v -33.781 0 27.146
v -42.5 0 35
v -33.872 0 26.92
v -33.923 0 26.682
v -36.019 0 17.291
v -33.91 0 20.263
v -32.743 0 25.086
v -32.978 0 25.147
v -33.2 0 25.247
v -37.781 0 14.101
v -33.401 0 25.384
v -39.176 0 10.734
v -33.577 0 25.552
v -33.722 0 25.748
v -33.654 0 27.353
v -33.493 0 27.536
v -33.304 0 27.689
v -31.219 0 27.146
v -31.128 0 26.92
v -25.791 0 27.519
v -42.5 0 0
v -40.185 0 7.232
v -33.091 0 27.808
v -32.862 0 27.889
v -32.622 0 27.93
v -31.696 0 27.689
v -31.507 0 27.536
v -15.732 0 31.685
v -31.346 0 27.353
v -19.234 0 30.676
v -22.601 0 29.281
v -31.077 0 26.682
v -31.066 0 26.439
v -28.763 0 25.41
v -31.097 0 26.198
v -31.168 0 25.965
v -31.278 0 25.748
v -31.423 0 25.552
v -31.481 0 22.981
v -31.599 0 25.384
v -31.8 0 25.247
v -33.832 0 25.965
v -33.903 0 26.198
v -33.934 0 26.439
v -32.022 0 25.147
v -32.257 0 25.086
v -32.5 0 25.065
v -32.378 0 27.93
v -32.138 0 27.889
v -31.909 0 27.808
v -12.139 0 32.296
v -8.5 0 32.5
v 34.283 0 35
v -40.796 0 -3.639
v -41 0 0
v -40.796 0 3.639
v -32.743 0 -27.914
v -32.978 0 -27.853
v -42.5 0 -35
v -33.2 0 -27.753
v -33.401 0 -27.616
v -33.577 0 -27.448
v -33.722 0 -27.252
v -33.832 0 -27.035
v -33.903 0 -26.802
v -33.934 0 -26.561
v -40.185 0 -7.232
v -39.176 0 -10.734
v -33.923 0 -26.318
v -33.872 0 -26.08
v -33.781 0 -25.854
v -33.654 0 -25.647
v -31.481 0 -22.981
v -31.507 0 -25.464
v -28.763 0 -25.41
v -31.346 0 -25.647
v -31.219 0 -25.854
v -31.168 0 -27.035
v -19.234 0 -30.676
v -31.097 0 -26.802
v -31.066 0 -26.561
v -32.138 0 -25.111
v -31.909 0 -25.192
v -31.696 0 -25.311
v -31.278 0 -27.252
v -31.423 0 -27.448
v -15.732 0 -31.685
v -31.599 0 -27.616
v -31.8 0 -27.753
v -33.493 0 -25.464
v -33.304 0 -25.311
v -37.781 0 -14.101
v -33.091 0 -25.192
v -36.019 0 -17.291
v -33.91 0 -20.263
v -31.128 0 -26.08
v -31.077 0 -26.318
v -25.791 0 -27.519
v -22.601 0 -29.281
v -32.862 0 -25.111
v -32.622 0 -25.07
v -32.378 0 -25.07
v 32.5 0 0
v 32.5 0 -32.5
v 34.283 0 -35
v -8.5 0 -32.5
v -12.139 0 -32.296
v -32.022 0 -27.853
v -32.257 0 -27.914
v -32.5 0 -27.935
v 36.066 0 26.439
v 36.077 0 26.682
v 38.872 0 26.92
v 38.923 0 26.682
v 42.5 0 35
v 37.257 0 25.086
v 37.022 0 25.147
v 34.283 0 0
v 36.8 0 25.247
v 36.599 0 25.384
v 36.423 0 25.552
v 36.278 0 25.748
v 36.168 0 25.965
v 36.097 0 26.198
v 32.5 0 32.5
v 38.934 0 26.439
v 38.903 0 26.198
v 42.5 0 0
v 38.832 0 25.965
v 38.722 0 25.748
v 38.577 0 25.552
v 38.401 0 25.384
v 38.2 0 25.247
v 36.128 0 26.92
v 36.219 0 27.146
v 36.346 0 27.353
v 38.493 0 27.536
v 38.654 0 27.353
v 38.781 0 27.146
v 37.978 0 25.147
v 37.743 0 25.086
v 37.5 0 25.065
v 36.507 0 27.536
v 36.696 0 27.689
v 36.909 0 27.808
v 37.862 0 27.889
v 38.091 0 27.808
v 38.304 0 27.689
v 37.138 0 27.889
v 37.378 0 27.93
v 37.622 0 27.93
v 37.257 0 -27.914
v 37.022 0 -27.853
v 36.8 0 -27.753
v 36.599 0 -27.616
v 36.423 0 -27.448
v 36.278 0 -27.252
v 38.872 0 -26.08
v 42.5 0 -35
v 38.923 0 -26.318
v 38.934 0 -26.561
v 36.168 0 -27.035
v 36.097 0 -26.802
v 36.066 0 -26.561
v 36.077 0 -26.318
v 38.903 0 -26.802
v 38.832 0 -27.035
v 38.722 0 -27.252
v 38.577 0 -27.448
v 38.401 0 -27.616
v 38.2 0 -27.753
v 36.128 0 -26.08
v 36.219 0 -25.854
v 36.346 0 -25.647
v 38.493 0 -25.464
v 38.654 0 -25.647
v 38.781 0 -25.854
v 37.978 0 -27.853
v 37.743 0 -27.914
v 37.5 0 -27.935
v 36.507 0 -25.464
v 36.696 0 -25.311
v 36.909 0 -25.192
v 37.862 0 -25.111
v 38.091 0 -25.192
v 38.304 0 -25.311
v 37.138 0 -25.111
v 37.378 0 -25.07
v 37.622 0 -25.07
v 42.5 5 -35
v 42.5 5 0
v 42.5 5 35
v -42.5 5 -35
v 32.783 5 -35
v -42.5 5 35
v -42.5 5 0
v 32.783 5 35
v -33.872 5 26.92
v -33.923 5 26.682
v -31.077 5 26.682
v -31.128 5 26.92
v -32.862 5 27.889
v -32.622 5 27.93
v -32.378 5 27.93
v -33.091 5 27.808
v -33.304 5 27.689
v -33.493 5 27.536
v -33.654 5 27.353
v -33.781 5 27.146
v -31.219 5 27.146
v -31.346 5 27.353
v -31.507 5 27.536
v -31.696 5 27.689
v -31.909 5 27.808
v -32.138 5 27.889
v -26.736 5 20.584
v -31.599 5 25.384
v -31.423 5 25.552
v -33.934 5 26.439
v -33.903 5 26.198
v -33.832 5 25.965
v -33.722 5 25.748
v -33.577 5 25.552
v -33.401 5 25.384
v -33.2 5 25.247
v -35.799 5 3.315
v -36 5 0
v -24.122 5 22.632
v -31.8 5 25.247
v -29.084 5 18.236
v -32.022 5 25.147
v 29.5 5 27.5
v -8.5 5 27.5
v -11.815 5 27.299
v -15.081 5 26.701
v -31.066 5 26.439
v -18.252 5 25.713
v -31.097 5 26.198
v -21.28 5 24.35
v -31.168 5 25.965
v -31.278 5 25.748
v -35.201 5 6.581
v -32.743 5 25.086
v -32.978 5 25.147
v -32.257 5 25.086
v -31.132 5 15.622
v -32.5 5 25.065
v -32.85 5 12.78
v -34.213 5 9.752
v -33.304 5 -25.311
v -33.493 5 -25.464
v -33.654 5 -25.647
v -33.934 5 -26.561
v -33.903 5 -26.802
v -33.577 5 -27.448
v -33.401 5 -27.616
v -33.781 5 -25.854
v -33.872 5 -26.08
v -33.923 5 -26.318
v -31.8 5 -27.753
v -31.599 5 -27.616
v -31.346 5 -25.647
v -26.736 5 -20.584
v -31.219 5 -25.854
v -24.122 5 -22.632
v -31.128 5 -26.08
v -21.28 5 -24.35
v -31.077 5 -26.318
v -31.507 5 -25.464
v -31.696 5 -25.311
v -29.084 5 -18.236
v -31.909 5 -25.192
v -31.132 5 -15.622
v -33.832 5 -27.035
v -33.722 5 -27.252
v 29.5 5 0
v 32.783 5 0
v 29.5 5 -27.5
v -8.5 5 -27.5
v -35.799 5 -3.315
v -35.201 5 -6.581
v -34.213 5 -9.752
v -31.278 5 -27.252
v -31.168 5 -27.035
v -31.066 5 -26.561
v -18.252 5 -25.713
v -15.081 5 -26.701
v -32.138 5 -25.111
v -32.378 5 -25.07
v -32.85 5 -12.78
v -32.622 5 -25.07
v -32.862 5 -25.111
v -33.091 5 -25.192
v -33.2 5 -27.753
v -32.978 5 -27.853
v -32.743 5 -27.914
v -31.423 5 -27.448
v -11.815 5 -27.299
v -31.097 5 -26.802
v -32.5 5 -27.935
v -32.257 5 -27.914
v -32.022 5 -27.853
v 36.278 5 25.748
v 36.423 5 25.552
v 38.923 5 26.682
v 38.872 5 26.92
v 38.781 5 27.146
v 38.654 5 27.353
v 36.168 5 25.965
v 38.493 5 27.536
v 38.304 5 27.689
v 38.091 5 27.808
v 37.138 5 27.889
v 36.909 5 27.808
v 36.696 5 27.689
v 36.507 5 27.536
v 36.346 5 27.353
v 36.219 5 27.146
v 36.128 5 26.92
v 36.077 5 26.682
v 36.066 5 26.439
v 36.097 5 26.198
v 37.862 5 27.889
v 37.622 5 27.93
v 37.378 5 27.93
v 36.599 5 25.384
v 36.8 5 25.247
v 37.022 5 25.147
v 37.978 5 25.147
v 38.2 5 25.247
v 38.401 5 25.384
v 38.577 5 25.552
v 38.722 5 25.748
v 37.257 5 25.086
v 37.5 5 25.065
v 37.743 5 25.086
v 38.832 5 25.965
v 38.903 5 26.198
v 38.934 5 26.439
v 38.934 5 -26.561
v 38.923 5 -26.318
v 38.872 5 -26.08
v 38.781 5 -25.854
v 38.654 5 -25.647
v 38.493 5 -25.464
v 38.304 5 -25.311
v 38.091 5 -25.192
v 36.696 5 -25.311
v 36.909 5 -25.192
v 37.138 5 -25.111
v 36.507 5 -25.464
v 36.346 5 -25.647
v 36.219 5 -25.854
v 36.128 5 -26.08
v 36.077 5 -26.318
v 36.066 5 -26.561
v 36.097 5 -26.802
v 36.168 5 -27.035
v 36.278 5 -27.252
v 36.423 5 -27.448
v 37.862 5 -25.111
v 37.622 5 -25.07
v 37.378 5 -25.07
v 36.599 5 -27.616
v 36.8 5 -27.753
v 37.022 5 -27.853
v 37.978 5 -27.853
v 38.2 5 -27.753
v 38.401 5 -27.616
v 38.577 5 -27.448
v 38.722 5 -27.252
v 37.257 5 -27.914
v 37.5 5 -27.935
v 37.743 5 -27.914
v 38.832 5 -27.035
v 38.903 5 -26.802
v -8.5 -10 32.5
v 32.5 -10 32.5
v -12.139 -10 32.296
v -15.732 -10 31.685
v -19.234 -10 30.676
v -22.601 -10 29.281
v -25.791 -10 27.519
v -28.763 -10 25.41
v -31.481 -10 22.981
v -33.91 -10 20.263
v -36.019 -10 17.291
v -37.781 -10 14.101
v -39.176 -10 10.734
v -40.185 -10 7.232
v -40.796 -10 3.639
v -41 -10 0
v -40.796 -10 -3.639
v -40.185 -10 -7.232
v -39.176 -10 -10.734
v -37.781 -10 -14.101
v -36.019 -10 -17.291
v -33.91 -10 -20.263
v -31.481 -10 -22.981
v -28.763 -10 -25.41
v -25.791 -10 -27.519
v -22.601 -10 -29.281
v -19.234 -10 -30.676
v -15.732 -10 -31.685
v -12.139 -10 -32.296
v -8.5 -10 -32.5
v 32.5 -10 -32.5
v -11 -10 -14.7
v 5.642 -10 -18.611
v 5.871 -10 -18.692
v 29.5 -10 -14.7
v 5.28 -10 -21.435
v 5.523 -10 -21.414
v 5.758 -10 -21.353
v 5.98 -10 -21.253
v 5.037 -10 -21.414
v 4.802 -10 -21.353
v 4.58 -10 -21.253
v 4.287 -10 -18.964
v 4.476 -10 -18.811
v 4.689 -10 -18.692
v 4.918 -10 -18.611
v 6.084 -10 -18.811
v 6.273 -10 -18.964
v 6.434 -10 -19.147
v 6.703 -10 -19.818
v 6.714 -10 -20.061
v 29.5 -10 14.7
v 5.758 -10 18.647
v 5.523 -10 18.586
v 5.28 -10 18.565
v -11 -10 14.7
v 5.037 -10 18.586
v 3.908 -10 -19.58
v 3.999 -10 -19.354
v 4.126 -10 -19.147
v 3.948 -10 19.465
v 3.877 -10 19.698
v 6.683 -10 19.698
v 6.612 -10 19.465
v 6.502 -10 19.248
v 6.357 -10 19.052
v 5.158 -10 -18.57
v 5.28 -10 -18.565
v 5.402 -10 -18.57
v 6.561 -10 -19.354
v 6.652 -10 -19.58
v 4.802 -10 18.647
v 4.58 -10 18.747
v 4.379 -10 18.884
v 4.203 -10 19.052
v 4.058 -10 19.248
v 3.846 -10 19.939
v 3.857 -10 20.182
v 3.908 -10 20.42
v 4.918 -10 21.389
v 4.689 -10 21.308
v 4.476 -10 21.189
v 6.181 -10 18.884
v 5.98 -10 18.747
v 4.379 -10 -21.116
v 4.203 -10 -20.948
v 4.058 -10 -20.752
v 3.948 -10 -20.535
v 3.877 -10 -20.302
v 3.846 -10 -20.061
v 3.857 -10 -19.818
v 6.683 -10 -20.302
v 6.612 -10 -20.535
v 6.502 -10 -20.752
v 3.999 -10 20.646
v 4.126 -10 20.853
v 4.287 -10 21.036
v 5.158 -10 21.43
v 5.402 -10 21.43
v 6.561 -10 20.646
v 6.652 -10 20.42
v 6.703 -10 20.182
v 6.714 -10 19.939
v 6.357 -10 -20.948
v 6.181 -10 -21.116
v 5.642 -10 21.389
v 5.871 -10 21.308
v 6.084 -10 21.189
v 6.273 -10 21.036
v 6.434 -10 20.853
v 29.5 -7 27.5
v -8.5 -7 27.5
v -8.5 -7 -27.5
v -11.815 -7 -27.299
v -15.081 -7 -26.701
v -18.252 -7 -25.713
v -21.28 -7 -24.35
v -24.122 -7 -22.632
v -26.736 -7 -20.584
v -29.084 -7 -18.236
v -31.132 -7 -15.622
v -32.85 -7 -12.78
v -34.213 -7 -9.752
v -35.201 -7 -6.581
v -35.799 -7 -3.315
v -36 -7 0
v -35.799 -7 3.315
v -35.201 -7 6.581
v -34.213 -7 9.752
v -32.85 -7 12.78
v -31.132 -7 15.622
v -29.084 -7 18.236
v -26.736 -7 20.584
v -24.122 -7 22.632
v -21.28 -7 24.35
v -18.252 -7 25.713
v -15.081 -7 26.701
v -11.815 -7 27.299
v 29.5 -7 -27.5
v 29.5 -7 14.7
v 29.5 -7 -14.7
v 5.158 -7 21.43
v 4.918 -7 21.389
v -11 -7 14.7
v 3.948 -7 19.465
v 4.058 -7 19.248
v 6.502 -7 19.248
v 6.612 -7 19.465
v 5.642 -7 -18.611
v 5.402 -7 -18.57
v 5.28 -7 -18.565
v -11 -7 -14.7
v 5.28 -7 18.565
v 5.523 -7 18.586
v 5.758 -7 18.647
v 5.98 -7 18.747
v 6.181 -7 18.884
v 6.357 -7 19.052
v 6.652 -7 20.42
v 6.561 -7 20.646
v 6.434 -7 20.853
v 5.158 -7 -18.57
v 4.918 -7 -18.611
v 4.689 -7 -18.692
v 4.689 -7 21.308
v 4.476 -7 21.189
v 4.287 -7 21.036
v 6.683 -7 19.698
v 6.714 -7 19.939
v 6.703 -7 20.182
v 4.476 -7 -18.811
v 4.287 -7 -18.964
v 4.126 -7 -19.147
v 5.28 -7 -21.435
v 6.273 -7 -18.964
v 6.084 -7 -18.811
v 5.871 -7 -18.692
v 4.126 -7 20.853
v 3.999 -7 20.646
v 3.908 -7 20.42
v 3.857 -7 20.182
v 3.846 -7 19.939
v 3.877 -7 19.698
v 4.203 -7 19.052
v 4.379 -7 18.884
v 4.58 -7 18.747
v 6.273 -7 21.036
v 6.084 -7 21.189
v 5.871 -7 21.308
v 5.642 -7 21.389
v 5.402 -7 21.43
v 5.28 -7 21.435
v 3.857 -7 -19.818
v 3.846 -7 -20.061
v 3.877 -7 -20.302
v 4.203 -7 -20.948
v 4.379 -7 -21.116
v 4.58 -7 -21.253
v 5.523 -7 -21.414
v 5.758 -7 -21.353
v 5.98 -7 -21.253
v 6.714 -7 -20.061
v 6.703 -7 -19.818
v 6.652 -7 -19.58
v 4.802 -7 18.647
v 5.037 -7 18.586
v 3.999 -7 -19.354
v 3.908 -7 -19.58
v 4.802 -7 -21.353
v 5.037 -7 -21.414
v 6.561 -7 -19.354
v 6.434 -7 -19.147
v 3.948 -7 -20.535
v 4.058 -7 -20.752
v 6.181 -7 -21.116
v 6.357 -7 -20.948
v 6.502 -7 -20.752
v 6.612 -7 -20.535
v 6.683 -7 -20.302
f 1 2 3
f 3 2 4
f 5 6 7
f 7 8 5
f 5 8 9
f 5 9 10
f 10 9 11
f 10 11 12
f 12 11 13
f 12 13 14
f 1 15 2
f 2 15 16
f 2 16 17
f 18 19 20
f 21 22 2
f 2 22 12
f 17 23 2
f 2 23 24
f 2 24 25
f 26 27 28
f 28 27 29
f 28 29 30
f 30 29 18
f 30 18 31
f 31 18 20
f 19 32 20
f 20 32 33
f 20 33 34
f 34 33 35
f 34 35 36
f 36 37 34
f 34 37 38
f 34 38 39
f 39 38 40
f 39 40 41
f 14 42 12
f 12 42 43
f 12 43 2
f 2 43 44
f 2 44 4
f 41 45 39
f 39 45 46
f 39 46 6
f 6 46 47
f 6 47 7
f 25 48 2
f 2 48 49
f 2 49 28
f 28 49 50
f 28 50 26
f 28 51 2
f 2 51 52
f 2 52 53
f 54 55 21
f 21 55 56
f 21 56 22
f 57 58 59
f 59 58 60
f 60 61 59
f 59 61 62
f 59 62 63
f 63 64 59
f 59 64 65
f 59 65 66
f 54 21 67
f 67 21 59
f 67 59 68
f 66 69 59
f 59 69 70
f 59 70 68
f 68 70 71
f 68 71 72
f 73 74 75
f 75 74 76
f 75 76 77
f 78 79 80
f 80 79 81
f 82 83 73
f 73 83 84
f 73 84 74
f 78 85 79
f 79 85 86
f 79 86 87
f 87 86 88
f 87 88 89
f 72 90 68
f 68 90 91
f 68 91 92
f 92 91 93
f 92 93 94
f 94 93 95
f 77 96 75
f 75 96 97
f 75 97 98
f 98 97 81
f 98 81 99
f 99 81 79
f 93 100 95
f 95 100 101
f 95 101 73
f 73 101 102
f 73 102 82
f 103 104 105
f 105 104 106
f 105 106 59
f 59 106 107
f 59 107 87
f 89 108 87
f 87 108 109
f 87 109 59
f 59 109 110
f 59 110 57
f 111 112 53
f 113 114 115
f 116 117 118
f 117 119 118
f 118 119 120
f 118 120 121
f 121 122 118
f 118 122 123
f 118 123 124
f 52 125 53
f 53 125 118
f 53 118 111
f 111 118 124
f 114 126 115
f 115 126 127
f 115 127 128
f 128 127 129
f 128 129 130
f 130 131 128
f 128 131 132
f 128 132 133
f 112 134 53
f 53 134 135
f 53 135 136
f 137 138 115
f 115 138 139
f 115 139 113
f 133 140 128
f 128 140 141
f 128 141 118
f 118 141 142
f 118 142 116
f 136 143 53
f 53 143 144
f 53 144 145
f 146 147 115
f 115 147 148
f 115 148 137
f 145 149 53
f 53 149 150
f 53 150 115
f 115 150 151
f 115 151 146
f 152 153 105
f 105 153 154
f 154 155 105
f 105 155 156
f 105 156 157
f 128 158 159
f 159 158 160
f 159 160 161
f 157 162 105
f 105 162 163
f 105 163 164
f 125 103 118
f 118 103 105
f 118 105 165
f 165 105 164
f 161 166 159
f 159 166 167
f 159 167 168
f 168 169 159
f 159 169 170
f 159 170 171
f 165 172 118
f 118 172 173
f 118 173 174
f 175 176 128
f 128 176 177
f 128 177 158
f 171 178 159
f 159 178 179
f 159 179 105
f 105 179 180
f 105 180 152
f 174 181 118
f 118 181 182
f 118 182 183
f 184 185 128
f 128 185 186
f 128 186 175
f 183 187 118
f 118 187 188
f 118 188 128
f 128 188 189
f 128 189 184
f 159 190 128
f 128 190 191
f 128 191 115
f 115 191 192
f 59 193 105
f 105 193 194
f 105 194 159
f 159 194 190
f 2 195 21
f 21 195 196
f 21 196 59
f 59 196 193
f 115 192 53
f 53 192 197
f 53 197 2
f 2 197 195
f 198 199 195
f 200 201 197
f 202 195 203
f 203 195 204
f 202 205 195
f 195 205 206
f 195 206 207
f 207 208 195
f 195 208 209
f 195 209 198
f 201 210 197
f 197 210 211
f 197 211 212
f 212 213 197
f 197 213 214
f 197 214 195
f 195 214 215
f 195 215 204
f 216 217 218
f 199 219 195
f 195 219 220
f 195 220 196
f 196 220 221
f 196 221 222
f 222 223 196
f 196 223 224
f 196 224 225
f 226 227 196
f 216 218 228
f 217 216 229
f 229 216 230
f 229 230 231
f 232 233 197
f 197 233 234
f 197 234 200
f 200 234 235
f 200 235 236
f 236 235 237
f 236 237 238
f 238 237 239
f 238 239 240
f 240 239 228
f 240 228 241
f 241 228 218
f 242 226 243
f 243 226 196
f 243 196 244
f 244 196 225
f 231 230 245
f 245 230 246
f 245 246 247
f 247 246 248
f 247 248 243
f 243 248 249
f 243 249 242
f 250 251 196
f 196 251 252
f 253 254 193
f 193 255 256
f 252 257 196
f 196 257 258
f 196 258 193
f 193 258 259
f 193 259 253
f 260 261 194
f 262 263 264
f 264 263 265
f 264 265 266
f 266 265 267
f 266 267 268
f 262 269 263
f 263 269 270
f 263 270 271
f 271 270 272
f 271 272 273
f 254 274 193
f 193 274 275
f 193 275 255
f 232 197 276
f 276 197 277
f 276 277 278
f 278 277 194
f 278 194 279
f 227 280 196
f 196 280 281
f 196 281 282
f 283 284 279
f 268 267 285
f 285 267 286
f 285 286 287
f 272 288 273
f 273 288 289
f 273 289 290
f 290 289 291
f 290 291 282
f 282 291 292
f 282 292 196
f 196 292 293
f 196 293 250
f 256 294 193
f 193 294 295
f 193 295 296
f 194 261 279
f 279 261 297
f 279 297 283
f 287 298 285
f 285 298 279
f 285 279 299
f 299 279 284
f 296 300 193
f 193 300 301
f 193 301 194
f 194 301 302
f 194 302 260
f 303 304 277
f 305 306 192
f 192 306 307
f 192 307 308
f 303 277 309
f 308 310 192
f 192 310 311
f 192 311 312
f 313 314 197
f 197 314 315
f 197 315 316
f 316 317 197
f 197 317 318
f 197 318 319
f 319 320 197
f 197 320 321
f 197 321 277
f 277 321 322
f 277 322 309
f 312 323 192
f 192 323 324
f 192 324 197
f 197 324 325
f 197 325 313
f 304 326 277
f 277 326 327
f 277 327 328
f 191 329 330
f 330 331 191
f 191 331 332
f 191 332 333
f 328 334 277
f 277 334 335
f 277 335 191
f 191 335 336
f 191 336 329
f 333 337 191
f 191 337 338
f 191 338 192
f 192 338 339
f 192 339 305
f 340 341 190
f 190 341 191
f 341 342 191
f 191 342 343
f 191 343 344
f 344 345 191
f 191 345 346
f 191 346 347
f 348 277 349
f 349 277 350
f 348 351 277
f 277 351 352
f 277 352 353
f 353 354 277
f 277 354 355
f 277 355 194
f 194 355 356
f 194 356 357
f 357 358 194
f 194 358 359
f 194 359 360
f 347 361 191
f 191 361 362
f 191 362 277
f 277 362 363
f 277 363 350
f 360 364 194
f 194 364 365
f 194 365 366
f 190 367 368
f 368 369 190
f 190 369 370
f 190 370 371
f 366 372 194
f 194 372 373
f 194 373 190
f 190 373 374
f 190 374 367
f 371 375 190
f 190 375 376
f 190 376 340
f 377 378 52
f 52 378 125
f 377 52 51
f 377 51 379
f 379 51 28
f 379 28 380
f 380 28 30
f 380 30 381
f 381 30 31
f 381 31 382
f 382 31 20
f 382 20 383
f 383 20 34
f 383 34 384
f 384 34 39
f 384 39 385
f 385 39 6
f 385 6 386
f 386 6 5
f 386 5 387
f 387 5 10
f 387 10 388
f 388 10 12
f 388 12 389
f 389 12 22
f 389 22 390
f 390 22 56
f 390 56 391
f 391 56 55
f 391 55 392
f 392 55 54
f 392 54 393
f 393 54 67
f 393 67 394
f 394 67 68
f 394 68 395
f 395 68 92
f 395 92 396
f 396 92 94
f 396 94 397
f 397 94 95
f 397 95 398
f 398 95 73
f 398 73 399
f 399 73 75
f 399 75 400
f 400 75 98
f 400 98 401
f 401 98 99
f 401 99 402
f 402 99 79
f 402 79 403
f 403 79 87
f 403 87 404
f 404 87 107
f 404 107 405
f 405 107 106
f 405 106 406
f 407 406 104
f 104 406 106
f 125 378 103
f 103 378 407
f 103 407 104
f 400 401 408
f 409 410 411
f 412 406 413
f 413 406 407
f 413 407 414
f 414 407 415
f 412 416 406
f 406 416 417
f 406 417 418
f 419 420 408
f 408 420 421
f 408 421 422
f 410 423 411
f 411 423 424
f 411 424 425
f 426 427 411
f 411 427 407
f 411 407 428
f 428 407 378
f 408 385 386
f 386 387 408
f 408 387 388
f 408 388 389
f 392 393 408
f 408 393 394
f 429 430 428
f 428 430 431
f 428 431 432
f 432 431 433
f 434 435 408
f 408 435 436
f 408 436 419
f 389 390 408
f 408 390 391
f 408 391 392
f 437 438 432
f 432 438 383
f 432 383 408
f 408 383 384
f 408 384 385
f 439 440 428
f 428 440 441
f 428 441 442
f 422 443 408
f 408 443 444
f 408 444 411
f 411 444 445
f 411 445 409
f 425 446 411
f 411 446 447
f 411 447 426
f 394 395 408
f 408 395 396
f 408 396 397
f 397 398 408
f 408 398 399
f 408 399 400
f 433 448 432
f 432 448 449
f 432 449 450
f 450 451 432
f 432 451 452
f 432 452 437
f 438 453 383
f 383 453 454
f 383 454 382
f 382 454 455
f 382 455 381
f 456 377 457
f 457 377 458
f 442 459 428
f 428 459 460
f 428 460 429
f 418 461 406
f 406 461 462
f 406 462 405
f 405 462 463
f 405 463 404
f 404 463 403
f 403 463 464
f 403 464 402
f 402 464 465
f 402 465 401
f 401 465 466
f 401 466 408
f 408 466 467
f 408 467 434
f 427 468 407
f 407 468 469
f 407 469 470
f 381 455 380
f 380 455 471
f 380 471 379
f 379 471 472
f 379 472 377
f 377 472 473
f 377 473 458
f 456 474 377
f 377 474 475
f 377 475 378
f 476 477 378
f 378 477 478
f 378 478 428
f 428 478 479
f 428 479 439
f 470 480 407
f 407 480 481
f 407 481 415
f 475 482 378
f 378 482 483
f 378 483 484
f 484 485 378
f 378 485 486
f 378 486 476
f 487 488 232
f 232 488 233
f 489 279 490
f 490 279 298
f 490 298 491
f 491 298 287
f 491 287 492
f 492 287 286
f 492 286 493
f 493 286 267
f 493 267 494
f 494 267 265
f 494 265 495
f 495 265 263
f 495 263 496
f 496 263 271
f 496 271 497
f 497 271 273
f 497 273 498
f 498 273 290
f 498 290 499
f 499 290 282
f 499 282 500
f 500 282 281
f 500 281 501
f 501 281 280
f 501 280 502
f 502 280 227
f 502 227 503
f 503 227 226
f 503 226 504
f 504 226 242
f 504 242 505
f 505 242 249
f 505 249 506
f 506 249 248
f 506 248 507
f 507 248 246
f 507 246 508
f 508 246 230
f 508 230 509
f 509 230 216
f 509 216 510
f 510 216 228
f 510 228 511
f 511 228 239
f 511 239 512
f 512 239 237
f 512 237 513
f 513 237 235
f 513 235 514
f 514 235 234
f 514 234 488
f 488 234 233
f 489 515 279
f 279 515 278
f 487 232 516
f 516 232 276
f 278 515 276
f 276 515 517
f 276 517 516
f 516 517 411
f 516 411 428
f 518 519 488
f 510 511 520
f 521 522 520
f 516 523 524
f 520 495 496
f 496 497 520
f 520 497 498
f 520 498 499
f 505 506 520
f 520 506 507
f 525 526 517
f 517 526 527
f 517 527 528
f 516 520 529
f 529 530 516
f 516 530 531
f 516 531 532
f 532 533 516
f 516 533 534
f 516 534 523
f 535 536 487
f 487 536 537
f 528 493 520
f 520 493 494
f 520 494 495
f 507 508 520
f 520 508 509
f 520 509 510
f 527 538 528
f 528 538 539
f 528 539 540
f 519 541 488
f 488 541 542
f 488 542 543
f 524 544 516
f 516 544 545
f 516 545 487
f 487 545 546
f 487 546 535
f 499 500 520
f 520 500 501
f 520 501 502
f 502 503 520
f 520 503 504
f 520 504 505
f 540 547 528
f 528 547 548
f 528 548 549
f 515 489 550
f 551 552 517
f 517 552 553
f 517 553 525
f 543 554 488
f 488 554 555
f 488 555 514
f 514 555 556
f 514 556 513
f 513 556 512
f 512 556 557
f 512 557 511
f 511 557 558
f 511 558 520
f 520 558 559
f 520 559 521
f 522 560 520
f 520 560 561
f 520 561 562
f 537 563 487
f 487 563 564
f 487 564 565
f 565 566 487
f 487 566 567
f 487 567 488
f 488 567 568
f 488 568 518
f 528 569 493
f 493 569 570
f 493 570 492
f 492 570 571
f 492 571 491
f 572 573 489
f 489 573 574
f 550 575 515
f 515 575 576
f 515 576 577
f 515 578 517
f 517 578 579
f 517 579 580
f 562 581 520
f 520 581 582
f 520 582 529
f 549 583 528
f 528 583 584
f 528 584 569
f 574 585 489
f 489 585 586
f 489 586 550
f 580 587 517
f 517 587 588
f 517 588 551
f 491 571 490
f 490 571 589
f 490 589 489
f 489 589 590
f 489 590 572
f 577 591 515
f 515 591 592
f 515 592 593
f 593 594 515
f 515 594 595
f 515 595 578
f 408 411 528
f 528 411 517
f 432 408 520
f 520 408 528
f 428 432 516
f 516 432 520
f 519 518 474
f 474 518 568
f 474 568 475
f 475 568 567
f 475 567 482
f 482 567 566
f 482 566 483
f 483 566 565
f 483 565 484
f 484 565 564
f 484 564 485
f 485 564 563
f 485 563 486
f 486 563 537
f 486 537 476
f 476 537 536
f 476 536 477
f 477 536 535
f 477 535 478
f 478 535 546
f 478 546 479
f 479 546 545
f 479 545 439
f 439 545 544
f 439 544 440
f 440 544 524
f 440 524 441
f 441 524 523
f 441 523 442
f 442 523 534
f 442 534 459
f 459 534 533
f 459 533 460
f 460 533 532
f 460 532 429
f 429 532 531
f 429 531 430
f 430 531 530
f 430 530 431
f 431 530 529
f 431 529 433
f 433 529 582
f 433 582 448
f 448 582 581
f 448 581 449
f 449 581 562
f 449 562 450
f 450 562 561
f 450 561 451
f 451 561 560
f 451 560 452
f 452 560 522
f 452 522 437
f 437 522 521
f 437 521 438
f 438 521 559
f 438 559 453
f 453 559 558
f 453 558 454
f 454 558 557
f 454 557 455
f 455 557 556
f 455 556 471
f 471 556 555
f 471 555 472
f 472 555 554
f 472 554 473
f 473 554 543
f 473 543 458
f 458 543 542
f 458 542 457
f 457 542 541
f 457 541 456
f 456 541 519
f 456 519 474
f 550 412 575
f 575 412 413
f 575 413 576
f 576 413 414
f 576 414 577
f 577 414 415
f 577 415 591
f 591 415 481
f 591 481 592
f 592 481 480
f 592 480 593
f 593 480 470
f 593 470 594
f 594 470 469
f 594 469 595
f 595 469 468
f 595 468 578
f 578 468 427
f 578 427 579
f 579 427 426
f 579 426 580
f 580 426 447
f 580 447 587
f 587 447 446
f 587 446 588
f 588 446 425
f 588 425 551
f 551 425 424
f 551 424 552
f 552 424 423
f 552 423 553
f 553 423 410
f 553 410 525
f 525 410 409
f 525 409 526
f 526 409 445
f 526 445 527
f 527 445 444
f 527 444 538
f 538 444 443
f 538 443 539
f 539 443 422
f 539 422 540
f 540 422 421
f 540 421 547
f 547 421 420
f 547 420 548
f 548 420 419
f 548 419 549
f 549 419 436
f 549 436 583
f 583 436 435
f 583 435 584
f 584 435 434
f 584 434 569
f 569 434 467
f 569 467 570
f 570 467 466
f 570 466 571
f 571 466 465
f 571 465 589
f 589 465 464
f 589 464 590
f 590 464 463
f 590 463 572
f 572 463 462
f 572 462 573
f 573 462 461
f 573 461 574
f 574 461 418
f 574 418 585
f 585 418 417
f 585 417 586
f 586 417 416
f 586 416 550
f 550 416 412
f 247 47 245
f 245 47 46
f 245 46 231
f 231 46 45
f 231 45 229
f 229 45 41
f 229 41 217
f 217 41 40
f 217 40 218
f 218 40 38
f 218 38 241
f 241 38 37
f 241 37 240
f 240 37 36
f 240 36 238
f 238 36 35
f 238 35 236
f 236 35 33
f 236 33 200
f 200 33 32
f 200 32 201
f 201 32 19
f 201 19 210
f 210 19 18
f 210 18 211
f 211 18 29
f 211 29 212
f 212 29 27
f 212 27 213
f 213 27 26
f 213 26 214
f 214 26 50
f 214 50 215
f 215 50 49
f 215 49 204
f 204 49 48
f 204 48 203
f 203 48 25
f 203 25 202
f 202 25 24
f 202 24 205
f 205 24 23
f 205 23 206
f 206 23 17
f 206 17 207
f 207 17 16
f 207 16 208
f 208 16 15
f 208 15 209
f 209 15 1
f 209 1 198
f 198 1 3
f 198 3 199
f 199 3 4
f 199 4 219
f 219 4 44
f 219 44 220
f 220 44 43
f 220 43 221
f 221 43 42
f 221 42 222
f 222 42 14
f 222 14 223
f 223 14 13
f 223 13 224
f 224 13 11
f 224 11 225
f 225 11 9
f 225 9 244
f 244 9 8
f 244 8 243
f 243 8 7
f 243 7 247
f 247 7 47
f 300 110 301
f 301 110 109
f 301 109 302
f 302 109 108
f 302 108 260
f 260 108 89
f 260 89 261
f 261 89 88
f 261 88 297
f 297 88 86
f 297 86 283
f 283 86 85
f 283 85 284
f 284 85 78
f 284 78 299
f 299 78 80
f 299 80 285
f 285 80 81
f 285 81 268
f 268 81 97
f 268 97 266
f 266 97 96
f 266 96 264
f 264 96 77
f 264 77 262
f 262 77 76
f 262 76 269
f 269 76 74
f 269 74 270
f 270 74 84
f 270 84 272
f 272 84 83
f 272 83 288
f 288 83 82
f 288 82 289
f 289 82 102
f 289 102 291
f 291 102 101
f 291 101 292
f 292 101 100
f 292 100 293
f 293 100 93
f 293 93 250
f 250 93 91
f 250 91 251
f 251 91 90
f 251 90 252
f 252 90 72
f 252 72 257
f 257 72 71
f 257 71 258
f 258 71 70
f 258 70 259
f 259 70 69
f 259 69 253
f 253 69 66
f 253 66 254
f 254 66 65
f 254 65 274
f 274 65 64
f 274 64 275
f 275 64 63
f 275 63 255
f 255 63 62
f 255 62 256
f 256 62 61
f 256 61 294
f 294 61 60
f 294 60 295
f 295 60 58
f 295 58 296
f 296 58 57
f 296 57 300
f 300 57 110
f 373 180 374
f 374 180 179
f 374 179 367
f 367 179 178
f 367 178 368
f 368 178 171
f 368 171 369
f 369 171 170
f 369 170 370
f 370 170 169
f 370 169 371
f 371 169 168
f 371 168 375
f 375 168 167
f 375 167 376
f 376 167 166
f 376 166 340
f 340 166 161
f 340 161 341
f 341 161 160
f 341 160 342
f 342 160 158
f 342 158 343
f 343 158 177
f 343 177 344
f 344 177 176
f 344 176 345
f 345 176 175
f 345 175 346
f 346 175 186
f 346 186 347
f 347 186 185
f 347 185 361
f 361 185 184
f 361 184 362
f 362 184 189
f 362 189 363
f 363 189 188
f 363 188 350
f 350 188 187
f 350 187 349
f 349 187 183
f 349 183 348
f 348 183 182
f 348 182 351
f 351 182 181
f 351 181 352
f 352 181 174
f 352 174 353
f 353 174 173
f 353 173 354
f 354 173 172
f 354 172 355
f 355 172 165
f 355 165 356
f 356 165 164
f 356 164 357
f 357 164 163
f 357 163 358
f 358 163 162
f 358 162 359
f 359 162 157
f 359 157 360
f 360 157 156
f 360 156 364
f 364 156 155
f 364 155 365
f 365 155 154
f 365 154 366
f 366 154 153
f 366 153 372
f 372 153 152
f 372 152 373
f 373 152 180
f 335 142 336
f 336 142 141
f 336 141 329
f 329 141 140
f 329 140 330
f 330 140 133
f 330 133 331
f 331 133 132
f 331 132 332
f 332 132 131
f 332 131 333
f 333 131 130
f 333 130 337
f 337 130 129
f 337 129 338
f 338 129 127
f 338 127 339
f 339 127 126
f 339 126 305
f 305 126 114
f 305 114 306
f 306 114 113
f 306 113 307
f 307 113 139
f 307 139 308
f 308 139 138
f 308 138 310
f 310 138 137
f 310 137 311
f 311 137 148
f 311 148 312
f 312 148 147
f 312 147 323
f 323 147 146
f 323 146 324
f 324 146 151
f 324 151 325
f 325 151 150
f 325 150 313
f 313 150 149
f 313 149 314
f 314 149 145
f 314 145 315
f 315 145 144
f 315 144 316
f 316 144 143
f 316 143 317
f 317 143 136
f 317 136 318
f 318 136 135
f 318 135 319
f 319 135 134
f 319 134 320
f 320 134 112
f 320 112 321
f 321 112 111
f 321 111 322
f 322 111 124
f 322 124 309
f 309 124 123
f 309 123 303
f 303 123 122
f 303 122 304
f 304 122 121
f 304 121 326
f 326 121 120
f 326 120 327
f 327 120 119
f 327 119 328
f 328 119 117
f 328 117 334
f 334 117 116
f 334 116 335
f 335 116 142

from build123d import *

# Parameters (mm, degrees)
CROQUIS1_W              = 85
CROQUIS1_H              = 70
SALIENTE_EXTRUIR1_DEPTH = 5
SALIENTE_EXTRUIR2_DEPTH = 10
CORTAR_EXTRUIR1_DEPTH   = 12
CROQUIS6_W              = 40.5
CROQUIS6_H              = 29.4
CORTAR_EXTRUIR2_DEPTH   = 16
CROQUIS7_R              = 1.435
CORTAR_EXTRUIR3_DEPTH   = 16
CROQUIS8_R              = 1.435
CORTAR_EXTRUIR4_DEPTH   = 6


with BuildPart() as part:
    # Croquis1 → Saliente-Extruir1 (new body)
    with BuildSketch(Plane(origin=(0, 0, 0), x_dir=(1, 0, 0), z_dir=(0, 1, 0))):
        Rectangle(CROQUIS1_W, CROQUIS1_H)
    extrude(amount=SALIENTE_EXTRUIR1_DEPTH)

    # Croquis3 → Saliente-Extruir2 (add)
    with BuildSketch(Plane(origin=(0, 0, 0), x_dir=(-1, 0, 0), z_dir=(0, -1, 0))):
        with BuildLine():
            Line((8.5, 32.5), (-32.5, 32.5))
            Line((-32.5, 32.5), (-32.5, -32.5))
            Line((-32.5, -32.5), (8.5, -32.5))
            ThreePointArc((8.5, -32.5), (41, 0), (8.5, 32.5))
        make_face()
    extrude(amount=SALIENTE_EXTRUIR2_DEPTH)

    # Croquis4 → Cortar-Extruir1 (cut)
    with BuildSketch(Plane(origin=(0, 5, 0), x_dir=(1, 0, 0), z_dir=(0, 1, 0))):
        with BuildLine():
            Line((-8.5, 27.5), (29.5, 27.5))
            Line((29.5, 27.5), (29.5, -27.5))
            Line((29.5, -27.5), (-8.5, -27.5))
            ThreePointArc((-8.5, -27.5), (-36, 0), (-8.5, 27.5))
        make_face()
    extrude(amount=-CORTAR_EXTRUIR1_DEPTH, mode=Mode.SUBTRACT)

    # Croquis6 → Cortar-Extruir2 (cut, through all)
    with BuildSketch(Plane.XZ.offset(10)):
        with Locations((9.25, 0)):
            Rectangle(CROQUIS6_W, CROQUIS6_H)
    extrude(amount=-CORTAR_EXTRUIR2_DEPTH, mode=Mode.SUBTRACT)

    # Croquis7 → Cortar-Extruir3 (cut, through all)
    with BuildSketch(Plane(origin=(0, -10, 0), x_dir=(-1, 0, 0), z_dir=(0, -1, 0))):
        with Locations((-5.28, -20)):
            Circle(CROQUIS7_R)
        with Locations((-5.28, 20)):
            Circle(CROQUIS7_R)
    extrude(amount=-CORTAR_EXTRUIR3_DEPTH, mode=Mode.SUBTRACT)

    # Croquis8 → Cortar-Extruir4 (cut, through all)
    with BuildSketch(Plane(origin=(0, 0, 0), x_dir=(-1, 0, 0), z_dir=(0, -1, 0))):
        with Locations((32.5, -26.5)):
            Circle(CROQUIS8_R)
        with Locations((-37.5, -26.5)):
            Circle(CROQUIS8_R)
        with Locations((-37.5, 26.5)):
            Circle(CROQUIS8_R)
        with Locations((32.5, 26.5)):
            Circle(CROQUIS8_R)
    extrude(amount=-CORTAR_EXTRUIR4_DEPTH, mode=Mode.SUBTRACT)


solid = part.part
